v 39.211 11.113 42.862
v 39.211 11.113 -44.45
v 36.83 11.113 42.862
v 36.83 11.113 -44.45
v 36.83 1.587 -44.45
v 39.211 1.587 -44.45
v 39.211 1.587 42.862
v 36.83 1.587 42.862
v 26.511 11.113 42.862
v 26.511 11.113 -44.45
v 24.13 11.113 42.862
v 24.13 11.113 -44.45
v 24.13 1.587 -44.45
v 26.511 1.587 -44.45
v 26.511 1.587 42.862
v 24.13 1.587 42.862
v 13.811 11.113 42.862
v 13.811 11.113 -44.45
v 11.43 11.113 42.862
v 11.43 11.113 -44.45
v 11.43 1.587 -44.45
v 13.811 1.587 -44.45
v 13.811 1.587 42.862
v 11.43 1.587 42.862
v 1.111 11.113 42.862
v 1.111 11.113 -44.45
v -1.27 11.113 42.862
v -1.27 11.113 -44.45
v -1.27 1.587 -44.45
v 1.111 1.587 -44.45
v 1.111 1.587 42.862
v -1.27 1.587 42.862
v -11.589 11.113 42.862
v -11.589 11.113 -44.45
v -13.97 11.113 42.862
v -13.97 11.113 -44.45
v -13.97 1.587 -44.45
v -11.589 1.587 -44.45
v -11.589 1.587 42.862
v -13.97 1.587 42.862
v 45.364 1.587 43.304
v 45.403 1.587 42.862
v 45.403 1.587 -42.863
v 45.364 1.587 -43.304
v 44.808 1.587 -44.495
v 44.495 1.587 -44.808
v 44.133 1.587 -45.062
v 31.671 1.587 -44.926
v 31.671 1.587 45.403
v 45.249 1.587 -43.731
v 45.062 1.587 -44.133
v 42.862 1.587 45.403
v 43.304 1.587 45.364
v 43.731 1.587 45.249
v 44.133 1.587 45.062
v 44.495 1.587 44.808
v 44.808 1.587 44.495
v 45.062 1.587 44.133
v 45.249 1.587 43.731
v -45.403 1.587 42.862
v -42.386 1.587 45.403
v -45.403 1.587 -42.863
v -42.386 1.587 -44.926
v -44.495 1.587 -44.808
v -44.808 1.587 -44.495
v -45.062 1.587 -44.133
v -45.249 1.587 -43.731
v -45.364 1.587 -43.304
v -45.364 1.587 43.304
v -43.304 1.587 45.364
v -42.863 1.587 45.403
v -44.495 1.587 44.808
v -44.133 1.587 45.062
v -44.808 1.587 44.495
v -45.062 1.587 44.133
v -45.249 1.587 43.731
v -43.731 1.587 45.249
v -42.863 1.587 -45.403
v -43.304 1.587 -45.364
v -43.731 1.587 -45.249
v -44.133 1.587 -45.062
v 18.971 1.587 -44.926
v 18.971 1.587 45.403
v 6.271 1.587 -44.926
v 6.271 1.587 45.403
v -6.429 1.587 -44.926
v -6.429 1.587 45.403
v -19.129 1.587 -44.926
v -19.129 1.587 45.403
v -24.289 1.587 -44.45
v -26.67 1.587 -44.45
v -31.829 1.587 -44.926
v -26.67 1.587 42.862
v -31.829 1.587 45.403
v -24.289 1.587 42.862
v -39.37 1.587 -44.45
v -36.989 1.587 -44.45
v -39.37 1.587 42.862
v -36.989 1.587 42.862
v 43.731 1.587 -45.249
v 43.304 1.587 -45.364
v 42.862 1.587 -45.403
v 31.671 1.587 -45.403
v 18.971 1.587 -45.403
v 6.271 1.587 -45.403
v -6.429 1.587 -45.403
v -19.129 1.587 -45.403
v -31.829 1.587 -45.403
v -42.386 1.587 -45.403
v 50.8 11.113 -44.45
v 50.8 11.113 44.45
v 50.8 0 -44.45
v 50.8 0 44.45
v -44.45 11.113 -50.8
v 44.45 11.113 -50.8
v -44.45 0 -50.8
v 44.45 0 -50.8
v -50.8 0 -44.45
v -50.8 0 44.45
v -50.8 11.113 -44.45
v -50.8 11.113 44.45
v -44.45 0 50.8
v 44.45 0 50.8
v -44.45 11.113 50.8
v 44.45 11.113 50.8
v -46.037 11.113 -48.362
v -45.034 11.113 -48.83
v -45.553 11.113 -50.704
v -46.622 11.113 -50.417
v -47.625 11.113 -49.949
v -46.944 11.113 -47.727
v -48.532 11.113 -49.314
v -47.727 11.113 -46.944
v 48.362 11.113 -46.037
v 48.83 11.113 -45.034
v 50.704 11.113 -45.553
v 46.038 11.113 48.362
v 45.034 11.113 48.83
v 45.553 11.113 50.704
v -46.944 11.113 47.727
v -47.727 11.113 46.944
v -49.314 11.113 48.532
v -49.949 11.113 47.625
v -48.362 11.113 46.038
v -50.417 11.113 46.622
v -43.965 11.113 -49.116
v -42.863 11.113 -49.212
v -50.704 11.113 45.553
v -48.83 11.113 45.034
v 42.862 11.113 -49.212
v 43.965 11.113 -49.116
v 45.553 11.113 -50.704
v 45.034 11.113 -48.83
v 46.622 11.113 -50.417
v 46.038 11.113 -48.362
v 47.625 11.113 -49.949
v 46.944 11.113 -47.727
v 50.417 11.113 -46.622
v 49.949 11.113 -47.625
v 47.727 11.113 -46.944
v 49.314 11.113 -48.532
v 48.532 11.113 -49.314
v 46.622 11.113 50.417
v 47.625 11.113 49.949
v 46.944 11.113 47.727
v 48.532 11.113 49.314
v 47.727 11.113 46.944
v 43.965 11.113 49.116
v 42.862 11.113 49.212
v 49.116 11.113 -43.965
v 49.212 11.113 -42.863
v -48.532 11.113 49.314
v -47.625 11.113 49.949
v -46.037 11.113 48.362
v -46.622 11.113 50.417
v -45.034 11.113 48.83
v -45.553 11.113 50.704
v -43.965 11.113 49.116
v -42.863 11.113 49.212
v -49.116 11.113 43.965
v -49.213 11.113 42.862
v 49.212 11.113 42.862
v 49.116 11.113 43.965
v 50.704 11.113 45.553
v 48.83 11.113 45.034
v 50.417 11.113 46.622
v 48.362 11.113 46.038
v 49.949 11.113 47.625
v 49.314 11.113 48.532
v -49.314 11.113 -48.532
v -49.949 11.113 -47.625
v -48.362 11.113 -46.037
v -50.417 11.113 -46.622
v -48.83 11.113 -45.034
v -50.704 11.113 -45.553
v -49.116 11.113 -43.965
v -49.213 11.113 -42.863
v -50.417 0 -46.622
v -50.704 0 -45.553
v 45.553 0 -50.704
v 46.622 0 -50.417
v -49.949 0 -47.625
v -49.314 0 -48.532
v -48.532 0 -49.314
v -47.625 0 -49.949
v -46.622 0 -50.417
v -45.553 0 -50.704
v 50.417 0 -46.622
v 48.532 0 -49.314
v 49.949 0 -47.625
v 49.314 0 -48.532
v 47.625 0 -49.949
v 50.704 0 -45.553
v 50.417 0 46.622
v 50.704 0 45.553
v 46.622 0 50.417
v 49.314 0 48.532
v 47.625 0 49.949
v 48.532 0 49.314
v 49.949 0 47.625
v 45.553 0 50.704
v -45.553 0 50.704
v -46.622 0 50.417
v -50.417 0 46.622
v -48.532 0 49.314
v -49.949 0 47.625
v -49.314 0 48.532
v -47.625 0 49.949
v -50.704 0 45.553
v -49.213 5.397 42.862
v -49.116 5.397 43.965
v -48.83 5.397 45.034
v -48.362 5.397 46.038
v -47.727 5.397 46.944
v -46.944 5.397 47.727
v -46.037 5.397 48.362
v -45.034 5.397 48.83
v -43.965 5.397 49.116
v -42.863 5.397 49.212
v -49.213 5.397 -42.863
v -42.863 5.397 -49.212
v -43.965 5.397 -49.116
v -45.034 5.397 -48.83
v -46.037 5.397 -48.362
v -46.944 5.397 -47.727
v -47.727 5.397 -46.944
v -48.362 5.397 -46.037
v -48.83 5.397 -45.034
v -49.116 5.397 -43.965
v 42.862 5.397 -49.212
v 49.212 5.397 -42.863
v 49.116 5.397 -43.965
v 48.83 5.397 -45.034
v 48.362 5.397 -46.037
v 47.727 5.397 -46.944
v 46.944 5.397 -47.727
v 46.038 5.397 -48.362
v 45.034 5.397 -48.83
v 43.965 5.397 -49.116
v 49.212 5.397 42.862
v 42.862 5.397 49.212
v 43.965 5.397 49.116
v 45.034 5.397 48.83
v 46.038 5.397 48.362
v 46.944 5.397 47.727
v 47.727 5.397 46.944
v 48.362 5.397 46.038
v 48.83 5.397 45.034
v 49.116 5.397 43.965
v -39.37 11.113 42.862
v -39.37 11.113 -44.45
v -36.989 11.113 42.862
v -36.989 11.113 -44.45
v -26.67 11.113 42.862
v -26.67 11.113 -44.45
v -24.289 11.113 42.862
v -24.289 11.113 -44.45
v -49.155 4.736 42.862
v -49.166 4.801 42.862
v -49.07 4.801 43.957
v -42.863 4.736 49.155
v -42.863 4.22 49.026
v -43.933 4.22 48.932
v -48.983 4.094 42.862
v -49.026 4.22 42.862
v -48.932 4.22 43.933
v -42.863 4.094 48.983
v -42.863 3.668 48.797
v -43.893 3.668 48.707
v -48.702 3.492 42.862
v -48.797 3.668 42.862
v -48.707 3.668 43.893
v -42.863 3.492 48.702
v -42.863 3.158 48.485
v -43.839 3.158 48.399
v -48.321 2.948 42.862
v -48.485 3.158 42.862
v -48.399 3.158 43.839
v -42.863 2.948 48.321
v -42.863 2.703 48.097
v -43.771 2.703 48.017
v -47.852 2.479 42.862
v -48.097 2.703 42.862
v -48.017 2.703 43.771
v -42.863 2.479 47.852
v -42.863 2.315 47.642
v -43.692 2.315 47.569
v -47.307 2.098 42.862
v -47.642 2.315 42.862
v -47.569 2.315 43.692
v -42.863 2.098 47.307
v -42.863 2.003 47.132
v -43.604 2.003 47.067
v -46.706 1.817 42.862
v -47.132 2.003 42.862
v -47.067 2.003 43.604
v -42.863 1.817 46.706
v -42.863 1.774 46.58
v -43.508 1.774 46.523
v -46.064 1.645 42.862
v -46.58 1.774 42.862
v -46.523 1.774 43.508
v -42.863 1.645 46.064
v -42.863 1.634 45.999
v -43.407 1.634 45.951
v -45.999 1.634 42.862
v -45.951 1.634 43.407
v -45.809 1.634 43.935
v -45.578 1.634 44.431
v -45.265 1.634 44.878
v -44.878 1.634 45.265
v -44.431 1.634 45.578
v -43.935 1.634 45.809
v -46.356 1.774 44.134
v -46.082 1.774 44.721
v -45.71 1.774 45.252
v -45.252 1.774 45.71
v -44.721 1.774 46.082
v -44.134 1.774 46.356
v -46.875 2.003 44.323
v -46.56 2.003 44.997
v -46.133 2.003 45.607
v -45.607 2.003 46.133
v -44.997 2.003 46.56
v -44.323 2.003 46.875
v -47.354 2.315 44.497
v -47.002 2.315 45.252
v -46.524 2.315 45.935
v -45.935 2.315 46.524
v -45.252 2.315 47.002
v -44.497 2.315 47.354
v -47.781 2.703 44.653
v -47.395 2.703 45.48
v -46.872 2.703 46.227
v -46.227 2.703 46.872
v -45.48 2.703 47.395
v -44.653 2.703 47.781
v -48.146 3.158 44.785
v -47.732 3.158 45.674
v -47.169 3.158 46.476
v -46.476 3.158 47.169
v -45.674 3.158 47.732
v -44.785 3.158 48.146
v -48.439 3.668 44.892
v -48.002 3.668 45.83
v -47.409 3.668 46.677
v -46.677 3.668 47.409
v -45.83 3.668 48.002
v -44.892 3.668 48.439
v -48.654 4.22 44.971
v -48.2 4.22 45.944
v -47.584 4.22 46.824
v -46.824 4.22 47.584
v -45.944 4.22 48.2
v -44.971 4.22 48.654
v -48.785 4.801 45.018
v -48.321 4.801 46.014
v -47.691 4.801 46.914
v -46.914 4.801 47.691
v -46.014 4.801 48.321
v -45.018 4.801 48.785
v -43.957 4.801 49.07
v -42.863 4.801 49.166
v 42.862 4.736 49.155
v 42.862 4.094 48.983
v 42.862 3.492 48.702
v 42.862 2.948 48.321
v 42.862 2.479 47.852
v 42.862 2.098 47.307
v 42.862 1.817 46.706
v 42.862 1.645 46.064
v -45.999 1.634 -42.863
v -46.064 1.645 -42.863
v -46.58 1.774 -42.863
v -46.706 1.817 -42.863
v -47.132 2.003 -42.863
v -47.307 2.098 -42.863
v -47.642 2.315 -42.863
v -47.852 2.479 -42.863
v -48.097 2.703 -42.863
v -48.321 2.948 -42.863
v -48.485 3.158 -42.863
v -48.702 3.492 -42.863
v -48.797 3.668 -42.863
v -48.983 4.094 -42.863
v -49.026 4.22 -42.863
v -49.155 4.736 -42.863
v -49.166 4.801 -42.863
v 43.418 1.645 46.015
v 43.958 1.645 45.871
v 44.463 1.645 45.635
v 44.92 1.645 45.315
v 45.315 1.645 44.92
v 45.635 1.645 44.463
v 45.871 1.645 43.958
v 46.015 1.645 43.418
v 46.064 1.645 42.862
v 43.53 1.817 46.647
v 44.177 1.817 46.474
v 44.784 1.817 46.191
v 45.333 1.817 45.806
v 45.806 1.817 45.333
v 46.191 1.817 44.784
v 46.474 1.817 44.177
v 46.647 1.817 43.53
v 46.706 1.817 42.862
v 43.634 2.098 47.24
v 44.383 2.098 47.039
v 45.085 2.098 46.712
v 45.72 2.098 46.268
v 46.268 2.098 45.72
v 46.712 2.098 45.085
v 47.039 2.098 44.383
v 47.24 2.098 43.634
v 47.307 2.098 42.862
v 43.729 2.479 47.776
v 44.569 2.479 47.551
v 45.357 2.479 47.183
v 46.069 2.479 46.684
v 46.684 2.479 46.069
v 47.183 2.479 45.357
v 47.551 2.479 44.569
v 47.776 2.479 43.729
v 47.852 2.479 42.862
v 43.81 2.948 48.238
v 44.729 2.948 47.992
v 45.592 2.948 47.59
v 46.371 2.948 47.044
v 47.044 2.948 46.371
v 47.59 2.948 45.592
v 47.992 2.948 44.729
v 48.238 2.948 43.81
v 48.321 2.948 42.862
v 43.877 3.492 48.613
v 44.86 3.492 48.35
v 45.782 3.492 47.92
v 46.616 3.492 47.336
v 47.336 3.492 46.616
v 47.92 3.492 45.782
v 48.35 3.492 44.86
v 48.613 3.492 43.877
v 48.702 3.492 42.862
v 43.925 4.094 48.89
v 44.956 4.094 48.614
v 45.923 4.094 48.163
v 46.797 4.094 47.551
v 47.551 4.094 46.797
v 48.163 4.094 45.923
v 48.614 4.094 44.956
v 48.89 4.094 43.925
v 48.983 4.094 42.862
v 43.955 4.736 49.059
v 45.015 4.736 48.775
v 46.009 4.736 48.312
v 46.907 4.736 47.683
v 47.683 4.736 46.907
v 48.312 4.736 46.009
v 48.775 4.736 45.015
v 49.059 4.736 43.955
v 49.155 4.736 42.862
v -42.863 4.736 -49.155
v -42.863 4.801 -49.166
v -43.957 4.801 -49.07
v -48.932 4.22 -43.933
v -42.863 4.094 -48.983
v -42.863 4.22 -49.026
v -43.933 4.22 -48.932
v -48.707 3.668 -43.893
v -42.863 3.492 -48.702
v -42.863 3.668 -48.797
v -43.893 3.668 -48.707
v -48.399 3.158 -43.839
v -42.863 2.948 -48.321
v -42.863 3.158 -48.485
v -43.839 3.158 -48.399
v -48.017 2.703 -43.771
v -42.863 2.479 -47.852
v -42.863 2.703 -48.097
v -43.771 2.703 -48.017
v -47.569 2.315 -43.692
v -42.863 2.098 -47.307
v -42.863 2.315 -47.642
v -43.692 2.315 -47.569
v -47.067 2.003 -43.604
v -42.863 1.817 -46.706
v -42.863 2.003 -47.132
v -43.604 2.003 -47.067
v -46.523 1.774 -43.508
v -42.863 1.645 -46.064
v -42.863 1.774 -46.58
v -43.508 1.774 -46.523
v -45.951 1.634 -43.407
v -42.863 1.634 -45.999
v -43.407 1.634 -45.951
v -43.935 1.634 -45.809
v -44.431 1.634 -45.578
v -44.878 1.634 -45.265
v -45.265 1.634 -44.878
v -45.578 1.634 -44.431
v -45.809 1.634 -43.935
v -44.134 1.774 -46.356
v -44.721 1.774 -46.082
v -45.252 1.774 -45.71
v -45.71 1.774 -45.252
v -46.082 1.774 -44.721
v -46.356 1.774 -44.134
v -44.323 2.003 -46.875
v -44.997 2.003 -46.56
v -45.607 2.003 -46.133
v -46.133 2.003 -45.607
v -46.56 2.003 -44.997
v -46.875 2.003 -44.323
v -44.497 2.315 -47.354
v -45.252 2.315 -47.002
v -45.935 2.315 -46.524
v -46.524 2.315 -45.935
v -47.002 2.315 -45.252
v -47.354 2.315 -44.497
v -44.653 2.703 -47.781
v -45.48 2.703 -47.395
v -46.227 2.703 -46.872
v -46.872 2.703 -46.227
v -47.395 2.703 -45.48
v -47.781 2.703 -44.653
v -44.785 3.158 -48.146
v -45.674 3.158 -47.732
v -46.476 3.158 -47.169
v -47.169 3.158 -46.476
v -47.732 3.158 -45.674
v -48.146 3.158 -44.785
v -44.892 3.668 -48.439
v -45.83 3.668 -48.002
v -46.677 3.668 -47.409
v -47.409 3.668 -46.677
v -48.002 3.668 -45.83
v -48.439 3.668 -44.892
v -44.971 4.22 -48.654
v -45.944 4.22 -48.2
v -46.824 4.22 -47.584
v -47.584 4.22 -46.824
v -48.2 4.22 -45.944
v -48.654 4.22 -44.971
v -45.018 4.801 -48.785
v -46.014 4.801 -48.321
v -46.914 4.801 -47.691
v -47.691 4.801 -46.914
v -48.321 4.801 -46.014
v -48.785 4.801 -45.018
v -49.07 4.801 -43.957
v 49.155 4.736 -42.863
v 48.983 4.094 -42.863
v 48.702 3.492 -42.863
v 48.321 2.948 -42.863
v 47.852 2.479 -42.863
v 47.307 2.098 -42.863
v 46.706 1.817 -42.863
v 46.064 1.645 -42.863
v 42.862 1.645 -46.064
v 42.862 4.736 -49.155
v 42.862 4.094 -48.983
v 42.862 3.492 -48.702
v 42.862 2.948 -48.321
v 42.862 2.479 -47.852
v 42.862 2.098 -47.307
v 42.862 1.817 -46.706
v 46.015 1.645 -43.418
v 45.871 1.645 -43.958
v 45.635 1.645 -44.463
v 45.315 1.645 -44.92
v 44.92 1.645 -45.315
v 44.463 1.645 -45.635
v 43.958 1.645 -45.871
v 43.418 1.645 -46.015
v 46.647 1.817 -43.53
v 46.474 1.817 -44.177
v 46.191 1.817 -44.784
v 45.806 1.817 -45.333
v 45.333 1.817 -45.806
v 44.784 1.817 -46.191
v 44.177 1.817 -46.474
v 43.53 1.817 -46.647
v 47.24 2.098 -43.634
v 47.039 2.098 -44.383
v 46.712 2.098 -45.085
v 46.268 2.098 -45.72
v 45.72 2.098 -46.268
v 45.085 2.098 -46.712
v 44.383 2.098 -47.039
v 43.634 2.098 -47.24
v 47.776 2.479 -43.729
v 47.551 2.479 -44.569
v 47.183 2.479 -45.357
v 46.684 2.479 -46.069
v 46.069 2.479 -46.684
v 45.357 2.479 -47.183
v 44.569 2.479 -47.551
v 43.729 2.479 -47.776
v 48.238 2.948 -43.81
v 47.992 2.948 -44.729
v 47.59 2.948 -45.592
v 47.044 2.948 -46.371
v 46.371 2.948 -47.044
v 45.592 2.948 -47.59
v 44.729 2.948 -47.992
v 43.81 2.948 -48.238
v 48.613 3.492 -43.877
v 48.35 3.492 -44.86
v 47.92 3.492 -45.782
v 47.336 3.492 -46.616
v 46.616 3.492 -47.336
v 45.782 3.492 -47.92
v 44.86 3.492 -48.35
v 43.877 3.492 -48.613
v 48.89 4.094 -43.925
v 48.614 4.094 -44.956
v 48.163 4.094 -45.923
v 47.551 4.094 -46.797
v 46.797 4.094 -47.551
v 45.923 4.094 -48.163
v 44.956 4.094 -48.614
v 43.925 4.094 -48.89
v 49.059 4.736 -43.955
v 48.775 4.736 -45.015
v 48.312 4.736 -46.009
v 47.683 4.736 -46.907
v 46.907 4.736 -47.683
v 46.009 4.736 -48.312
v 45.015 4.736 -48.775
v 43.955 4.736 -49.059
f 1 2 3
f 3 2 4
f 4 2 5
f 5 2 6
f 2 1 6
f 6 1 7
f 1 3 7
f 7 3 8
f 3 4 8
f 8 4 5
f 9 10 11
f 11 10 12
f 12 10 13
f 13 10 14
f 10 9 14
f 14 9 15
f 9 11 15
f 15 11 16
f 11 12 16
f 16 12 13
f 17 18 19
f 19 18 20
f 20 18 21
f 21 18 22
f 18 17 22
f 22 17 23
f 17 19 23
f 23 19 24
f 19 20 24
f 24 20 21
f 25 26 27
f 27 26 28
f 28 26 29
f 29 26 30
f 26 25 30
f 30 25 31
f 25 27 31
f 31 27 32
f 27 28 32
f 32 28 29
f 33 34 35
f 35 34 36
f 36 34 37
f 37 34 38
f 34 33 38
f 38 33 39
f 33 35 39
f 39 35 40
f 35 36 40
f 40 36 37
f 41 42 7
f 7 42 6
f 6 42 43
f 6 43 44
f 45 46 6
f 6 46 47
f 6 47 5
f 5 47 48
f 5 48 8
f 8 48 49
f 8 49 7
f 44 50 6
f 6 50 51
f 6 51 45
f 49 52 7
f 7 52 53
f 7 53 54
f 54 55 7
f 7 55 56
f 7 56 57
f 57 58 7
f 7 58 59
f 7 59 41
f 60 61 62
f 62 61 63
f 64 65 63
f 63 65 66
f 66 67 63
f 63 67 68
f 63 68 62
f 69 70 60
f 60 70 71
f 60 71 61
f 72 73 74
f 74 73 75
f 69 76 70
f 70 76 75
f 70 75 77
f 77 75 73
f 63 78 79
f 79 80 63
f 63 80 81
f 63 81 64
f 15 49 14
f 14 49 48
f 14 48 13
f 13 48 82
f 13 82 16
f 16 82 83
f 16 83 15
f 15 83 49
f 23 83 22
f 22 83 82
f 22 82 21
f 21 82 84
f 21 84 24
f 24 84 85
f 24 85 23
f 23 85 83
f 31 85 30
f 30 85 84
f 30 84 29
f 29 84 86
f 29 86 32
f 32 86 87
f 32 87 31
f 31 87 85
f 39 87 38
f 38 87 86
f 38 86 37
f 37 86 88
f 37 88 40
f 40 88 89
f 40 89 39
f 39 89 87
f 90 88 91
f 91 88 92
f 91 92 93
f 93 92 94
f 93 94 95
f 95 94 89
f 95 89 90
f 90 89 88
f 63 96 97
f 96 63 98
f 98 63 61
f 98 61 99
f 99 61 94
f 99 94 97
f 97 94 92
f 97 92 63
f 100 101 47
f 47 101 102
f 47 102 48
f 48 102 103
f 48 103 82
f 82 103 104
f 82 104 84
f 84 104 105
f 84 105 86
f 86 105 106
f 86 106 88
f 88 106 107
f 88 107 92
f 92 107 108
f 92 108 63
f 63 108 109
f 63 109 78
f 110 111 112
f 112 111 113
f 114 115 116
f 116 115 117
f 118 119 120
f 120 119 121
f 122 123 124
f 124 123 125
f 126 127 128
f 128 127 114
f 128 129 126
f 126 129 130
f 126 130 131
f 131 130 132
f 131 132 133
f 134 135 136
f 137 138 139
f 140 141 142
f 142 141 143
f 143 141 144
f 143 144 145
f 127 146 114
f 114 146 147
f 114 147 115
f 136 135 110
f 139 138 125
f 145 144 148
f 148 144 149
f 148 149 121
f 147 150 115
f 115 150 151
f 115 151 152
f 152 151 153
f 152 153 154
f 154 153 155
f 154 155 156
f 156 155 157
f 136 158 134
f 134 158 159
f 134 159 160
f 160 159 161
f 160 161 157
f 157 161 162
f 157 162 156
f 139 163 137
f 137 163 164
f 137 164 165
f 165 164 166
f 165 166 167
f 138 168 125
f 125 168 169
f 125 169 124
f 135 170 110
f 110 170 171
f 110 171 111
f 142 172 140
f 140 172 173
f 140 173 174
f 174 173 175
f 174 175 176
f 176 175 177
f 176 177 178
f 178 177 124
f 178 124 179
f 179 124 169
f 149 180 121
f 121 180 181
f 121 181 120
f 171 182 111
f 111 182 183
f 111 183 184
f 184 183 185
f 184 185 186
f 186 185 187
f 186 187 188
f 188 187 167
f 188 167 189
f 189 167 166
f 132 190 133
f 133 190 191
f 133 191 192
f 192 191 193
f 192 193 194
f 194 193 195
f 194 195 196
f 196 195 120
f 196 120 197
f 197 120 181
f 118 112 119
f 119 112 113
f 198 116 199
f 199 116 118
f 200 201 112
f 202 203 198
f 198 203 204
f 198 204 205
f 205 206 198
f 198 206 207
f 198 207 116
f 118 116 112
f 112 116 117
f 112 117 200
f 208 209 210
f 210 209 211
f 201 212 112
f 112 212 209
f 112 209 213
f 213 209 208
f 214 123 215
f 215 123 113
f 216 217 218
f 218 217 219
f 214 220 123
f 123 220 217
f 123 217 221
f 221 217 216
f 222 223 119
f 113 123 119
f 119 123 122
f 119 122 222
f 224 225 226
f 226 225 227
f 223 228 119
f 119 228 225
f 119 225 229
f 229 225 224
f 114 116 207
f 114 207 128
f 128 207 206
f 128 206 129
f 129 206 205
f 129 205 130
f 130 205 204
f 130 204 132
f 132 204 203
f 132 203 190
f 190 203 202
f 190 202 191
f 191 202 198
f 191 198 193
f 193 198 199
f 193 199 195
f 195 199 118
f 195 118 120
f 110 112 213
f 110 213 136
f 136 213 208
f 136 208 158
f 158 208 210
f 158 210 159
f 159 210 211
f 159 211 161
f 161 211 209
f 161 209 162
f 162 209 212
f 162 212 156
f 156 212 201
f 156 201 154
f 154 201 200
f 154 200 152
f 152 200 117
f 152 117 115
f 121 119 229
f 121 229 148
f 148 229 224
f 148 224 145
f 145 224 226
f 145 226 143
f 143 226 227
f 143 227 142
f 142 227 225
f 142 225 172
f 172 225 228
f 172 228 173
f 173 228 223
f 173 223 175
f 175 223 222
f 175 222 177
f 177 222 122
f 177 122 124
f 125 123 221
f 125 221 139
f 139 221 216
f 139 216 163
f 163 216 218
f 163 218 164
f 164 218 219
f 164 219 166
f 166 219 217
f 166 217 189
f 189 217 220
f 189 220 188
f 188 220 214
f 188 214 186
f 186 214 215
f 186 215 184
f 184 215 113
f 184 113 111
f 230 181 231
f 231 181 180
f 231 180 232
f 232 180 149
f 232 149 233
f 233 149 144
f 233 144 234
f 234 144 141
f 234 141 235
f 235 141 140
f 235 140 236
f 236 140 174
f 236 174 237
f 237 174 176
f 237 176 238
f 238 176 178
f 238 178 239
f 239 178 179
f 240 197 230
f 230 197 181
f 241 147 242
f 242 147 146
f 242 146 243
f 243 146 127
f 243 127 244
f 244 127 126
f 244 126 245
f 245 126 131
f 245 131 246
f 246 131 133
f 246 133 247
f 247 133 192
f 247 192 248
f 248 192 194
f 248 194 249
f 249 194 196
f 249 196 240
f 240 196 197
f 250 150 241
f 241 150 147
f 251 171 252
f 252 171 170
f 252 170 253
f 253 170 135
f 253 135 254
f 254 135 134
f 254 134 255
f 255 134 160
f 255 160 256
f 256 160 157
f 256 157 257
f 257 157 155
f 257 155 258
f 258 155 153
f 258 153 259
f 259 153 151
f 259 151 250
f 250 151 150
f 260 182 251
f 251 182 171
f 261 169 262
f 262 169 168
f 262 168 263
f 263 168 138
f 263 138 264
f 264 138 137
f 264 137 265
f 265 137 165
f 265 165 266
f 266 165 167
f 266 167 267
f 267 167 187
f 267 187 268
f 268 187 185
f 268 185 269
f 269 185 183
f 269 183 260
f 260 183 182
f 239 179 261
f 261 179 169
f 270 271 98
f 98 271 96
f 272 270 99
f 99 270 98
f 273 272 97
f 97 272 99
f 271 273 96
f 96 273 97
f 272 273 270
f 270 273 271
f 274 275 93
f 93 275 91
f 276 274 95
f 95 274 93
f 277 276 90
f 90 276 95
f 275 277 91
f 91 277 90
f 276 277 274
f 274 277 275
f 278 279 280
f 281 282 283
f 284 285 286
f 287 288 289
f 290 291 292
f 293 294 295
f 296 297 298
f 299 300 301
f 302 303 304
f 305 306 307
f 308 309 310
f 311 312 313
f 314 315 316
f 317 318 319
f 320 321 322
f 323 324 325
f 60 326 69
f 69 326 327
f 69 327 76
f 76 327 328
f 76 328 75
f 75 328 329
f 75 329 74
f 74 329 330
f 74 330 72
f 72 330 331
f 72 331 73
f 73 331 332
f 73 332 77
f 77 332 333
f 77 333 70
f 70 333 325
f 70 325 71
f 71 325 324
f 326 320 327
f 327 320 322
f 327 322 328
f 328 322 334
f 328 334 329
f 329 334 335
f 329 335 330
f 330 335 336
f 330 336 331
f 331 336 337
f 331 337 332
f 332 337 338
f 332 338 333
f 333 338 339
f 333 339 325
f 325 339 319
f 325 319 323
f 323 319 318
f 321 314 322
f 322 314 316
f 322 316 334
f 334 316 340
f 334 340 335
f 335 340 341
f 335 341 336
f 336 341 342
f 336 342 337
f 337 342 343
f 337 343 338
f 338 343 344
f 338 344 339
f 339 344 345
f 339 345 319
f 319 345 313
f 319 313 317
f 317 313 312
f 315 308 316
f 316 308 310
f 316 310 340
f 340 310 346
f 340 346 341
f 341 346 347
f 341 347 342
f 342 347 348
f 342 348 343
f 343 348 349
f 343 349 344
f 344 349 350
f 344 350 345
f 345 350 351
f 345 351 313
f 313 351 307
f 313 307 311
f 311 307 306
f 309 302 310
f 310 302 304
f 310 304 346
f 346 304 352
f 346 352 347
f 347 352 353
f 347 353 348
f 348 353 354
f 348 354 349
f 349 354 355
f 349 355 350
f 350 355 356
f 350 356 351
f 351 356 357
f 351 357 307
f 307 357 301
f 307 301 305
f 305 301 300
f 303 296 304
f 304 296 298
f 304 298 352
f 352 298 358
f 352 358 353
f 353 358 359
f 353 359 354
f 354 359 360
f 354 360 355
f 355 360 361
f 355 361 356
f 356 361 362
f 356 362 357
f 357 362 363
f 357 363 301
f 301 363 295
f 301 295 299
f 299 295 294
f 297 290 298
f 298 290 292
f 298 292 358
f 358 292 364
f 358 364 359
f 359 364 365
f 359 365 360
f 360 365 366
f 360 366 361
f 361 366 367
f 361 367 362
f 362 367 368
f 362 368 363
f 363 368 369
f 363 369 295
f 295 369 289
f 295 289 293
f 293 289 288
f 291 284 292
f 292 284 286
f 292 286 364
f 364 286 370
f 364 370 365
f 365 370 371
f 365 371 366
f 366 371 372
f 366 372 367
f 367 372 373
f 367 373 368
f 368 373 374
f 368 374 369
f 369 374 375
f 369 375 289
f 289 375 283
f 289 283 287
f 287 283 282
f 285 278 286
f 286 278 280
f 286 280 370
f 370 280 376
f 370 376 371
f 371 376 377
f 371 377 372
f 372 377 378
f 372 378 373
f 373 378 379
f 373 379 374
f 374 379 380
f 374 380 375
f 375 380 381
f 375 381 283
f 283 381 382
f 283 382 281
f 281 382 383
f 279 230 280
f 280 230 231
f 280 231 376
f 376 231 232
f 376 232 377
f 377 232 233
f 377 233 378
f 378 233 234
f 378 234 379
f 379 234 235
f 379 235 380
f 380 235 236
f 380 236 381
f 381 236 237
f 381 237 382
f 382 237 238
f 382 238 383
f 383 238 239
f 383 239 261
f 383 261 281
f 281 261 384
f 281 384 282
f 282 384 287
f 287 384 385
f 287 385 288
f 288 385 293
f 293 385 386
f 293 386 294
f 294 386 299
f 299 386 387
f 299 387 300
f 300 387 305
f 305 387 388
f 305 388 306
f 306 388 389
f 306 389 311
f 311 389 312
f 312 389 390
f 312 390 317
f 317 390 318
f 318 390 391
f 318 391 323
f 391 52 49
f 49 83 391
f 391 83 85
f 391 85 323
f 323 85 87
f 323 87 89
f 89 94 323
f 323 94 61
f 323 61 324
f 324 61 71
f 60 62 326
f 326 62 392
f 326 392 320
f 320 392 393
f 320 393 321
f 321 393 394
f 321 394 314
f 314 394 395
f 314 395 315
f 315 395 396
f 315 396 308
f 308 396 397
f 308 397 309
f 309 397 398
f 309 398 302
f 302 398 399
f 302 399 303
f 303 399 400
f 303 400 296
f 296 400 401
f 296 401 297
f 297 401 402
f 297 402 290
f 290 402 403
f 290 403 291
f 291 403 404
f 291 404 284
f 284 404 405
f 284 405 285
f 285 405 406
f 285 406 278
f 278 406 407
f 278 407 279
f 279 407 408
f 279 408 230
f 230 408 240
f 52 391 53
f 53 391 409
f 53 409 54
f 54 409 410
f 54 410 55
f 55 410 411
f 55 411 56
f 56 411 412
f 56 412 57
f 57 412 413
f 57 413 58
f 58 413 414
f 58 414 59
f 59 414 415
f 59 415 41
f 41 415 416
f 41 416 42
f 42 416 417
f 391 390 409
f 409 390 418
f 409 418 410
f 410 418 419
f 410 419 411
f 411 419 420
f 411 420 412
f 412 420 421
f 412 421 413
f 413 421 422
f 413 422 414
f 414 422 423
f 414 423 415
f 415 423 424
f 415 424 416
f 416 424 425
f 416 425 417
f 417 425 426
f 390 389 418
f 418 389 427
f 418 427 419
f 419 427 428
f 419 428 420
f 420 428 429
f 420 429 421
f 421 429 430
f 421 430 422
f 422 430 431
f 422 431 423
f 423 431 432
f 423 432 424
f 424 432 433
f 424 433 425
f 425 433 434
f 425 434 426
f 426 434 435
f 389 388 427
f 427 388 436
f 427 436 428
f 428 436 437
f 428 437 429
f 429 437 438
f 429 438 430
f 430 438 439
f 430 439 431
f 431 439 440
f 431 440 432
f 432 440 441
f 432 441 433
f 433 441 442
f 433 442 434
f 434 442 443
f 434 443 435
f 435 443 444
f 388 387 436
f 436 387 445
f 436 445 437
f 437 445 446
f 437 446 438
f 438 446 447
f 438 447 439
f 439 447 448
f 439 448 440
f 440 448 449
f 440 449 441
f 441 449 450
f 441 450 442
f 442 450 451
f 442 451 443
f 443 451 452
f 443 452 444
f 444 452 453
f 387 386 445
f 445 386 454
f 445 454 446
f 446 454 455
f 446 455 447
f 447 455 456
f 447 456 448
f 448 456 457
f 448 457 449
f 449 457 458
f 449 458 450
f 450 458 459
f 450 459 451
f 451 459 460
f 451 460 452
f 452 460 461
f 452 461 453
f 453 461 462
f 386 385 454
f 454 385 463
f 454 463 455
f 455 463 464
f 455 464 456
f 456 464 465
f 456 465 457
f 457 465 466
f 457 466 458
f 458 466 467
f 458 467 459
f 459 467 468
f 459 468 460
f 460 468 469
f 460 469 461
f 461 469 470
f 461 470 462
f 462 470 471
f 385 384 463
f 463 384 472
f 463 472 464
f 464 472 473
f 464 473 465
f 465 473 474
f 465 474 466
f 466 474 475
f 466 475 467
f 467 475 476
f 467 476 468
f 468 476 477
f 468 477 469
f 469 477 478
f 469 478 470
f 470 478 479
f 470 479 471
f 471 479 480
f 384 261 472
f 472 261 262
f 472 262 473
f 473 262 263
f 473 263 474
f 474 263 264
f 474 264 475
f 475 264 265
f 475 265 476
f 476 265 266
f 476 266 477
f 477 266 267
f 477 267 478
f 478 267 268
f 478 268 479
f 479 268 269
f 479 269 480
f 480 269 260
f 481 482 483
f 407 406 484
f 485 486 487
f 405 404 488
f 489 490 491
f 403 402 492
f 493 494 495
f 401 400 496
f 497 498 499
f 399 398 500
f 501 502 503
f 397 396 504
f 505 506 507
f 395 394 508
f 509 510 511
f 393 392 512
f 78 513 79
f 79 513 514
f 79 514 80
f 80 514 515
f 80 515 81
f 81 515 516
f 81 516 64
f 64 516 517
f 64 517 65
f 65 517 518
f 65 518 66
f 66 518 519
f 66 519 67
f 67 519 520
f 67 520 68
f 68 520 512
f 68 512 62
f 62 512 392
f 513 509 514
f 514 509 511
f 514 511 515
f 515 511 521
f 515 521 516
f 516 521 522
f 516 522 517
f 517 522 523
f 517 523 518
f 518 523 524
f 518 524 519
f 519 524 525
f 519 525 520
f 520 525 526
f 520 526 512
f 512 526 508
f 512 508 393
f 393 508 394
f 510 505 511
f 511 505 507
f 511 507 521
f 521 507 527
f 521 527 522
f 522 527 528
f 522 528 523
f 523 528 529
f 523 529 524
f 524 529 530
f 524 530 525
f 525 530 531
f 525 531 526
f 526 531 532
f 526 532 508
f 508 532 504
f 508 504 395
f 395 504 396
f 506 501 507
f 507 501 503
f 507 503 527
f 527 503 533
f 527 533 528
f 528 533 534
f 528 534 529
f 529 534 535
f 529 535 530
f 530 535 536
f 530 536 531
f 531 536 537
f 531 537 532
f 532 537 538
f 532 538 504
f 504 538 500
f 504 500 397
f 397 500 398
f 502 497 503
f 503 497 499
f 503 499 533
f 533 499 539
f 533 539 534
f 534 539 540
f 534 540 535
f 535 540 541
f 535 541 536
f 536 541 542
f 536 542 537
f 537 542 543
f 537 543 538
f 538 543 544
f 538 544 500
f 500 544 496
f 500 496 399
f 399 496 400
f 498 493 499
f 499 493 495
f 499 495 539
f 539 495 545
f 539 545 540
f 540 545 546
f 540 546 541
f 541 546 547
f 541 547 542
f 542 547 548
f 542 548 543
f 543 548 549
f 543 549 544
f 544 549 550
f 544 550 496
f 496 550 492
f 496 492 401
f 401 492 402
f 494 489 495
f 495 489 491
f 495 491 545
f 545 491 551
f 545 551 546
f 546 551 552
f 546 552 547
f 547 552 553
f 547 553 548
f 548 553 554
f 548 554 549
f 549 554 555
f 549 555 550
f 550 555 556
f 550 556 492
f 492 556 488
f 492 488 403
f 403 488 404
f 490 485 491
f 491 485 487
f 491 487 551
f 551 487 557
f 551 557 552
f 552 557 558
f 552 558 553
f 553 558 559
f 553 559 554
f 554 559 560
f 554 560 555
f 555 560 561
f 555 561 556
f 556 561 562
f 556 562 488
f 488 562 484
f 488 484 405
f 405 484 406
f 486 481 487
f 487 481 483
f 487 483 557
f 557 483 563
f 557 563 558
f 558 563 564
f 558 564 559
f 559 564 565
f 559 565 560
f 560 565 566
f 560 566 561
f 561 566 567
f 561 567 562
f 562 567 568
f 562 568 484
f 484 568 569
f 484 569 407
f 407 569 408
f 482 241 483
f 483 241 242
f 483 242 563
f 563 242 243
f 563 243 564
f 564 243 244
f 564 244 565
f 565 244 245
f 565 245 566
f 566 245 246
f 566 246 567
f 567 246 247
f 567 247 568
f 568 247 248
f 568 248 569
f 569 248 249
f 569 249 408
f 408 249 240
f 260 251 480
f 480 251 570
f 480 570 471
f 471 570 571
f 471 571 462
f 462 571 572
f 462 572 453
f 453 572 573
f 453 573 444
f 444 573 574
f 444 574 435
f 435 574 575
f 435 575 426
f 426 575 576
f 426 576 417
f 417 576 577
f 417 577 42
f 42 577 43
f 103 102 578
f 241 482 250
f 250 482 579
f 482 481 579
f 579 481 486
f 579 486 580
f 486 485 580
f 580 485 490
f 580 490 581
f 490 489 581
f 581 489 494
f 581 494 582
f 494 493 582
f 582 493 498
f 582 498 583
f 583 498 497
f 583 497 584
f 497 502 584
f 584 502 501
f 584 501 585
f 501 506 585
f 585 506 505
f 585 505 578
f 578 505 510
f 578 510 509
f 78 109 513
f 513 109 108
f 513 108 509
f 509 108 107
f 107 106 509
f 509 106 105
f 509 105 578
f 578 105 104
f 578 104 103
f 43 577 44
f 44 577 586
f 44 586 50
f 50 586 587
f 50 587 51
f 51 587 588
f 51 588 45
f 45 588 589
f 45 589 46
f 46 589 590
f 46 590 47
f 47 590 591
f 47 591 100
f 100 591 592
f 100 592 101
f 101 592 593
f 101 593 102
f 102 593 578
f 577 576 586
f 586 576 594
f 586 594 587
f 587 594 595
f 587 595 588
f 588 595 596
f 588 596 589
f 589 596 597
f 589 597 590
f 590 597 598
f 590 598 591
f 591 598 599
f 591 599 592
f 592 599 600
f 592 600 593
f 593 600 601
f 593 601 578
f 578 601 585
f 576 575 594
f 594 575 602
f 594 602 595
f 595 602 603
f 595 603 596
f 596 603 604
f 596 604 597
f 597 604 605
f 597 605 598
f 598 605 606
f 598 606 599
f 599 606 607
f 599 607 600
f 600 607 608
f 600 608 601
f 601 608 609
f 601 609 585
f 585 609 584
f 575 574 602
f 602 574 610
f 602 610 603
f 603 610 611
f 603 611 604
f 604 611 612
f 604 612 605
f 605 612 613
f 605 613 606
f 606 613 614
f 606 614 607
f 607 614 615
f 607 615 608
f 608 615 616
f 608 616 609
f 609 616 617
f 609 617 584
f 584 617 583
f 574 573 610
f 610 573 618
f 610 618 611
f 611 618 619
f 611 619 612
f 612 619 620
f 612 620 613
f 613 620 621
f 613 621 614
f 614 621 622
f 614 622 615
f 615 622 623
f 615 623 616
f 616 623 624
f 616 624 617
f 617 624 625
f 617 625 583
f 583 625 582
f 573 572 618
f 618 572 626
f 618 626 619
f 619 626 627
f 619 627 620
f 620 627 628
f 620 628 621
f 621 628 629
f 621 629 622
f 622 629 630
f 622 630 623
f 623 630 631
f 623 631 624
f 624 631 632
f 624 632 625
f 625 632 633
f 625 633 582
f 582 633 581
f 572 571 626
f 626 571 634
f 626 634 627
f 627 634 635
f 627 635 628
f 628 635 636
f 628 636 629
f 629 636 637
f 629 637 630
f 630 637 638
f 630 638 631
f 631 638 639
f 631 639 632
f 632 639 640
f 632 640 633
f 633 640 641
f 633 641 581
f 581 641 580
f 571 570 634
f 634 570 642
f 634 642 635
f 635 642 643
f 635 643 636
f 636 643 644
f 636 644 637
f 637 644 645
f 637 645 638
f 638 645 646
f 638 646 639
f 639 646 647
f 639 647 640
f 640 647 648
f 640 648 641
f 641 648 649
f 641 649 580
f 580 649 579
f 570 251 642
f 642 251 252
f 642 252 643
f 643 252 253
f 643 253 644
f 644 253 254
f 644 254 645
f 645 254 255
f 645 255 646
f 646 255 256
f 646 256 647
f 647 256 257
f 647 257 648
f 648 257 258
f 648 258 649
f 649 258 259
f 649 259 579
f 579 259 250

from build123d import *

# Parameters (mm, degrees)
ESQUISSE1_W                = 101.6
ESQUISSE1_H                = 101.6
BOSS_EXTRU_1_DEPTH         = 11.1125
CONG_1_R                   = 6.35
ENL_V_MAT_EXTRU_1_DEPTH    = 9.525
ESQUISSE4_W                = 2.38125
ESQUISSE4_H                = 87.3125
BOSS_EXTRU_3_DEPTH         = 9.525
R_P_TITION_LIN_AIRE1_COUNT = 7
R_P_TITION_LIN_AIRE1_PITCH = 12.7
CONG_2_R                   = 3.81


with BuildPart() as part:
    # Esquisse1 → Boss.-Extru.1 (new body)
    with BuildSketch(Plane(origin=(0, 0, 0), x_dir=(1, 0, 0), z_dir=(0, 1, 0))):
        Rectangle(ESQUISSE1_W, ESQUISSE1_H)
    extrude(amount=BOSS_EXTRU_1_DEPTH)

    # Congé1
    cong_1_edges = [part.edges().sort_by_distance(p)[0] for p in [
        (50.8, 5.55625, 50.8),
        (-50.8, 5.55625, 50.8),
        (-50.8, 5.55625, -50.8),
        (50.8, 5.55625, -50.8),
    ]]
    fillet(cong_1_edges, radius=CONG_1_R)

    # Esquisse2 → Enlèv. mat.-Extru.1 (cut)
    with BuildSketch(Plane(origin=(0, 11.1125, 0), x_dir=(1, 0, 0), z_dir=(0, 1, 0))):
        with BuildLine():
            Line((-42.8625, 49.2125), (42.8625, 49.2125))
            ThreePointArc((42.8625, 49.2125), (47.352628061, 47.352628061), (49.2125, 42.8625))
            Line((49.2125, 42.8625), (49.2125, -42.8625))
            ThreePointArc((49.2125, -42.8625), (47.352628061, -47.352628061), (42.8625, -49.2125))
            Line((42.8625, -49.2125), (-42.8625, -49.2125))
            ThreePointArc((-42.8625, -49.2125), (-47.352628061, -47.352628061), (-49.2125, -42.8625))
            Line((-49.2125, -42.8625), (-49.2125, 42.8625))
            ThreePointArc((-49.2125, 42.8625), (-47.352628061, 47.352628061), (-42.8625, 49.2125))
        make_face()
    extrude(amount=-ENL_V_MAT_EXTRU_1_DEPTH, mode=Mode.SUBTRACT)

    # Esquisse4 → Boss.-Extru.3 (add)
    with BuildSketch(Plane(origin=(0, 1.5875, 0), x_dir=(1, 0, 0), z_dir=(0, 1, 0))):
        with Locations((-38.179375, 0.79375)):
            Rectangle(ESQUISSE4_W, ESQUISSE4_H)
    boss_extru_3 = extrude(amount=BOSS_EXTRU_3_DEPTH)

    # Répétition linéaire1: Boss.-Extru.3 ×7
    with Locations(*[(i * R_P_TITION_LIN_AIRE1_PITCH, 0, 0) for i in range(1, R_P_TITION_LIN_AIRE1_COUNT)]):
        add(boss_extru_3)

    # Congé2
    cong_2_edges = [part.edges().sort_by_distance(p)[0] for p in [
        (-47.352628061, 1.5875, 47.352628061),
        (-49.2125, 1.5875, 0),
        (-47.352628061, 1.5875, -47.352628061),
        (0, 1.5875, -49.2125),
        (47.352628061, 1.5875, -47.352628061),
        (49.2125, 1.5875, 0),
        (47.352628061, 1.5875, 47.352628061),
        (0, 1.5875, 49.2125),
    ]]
    fillet(cong_2_edges, radius=CONG_2_R)


solid = part.part
